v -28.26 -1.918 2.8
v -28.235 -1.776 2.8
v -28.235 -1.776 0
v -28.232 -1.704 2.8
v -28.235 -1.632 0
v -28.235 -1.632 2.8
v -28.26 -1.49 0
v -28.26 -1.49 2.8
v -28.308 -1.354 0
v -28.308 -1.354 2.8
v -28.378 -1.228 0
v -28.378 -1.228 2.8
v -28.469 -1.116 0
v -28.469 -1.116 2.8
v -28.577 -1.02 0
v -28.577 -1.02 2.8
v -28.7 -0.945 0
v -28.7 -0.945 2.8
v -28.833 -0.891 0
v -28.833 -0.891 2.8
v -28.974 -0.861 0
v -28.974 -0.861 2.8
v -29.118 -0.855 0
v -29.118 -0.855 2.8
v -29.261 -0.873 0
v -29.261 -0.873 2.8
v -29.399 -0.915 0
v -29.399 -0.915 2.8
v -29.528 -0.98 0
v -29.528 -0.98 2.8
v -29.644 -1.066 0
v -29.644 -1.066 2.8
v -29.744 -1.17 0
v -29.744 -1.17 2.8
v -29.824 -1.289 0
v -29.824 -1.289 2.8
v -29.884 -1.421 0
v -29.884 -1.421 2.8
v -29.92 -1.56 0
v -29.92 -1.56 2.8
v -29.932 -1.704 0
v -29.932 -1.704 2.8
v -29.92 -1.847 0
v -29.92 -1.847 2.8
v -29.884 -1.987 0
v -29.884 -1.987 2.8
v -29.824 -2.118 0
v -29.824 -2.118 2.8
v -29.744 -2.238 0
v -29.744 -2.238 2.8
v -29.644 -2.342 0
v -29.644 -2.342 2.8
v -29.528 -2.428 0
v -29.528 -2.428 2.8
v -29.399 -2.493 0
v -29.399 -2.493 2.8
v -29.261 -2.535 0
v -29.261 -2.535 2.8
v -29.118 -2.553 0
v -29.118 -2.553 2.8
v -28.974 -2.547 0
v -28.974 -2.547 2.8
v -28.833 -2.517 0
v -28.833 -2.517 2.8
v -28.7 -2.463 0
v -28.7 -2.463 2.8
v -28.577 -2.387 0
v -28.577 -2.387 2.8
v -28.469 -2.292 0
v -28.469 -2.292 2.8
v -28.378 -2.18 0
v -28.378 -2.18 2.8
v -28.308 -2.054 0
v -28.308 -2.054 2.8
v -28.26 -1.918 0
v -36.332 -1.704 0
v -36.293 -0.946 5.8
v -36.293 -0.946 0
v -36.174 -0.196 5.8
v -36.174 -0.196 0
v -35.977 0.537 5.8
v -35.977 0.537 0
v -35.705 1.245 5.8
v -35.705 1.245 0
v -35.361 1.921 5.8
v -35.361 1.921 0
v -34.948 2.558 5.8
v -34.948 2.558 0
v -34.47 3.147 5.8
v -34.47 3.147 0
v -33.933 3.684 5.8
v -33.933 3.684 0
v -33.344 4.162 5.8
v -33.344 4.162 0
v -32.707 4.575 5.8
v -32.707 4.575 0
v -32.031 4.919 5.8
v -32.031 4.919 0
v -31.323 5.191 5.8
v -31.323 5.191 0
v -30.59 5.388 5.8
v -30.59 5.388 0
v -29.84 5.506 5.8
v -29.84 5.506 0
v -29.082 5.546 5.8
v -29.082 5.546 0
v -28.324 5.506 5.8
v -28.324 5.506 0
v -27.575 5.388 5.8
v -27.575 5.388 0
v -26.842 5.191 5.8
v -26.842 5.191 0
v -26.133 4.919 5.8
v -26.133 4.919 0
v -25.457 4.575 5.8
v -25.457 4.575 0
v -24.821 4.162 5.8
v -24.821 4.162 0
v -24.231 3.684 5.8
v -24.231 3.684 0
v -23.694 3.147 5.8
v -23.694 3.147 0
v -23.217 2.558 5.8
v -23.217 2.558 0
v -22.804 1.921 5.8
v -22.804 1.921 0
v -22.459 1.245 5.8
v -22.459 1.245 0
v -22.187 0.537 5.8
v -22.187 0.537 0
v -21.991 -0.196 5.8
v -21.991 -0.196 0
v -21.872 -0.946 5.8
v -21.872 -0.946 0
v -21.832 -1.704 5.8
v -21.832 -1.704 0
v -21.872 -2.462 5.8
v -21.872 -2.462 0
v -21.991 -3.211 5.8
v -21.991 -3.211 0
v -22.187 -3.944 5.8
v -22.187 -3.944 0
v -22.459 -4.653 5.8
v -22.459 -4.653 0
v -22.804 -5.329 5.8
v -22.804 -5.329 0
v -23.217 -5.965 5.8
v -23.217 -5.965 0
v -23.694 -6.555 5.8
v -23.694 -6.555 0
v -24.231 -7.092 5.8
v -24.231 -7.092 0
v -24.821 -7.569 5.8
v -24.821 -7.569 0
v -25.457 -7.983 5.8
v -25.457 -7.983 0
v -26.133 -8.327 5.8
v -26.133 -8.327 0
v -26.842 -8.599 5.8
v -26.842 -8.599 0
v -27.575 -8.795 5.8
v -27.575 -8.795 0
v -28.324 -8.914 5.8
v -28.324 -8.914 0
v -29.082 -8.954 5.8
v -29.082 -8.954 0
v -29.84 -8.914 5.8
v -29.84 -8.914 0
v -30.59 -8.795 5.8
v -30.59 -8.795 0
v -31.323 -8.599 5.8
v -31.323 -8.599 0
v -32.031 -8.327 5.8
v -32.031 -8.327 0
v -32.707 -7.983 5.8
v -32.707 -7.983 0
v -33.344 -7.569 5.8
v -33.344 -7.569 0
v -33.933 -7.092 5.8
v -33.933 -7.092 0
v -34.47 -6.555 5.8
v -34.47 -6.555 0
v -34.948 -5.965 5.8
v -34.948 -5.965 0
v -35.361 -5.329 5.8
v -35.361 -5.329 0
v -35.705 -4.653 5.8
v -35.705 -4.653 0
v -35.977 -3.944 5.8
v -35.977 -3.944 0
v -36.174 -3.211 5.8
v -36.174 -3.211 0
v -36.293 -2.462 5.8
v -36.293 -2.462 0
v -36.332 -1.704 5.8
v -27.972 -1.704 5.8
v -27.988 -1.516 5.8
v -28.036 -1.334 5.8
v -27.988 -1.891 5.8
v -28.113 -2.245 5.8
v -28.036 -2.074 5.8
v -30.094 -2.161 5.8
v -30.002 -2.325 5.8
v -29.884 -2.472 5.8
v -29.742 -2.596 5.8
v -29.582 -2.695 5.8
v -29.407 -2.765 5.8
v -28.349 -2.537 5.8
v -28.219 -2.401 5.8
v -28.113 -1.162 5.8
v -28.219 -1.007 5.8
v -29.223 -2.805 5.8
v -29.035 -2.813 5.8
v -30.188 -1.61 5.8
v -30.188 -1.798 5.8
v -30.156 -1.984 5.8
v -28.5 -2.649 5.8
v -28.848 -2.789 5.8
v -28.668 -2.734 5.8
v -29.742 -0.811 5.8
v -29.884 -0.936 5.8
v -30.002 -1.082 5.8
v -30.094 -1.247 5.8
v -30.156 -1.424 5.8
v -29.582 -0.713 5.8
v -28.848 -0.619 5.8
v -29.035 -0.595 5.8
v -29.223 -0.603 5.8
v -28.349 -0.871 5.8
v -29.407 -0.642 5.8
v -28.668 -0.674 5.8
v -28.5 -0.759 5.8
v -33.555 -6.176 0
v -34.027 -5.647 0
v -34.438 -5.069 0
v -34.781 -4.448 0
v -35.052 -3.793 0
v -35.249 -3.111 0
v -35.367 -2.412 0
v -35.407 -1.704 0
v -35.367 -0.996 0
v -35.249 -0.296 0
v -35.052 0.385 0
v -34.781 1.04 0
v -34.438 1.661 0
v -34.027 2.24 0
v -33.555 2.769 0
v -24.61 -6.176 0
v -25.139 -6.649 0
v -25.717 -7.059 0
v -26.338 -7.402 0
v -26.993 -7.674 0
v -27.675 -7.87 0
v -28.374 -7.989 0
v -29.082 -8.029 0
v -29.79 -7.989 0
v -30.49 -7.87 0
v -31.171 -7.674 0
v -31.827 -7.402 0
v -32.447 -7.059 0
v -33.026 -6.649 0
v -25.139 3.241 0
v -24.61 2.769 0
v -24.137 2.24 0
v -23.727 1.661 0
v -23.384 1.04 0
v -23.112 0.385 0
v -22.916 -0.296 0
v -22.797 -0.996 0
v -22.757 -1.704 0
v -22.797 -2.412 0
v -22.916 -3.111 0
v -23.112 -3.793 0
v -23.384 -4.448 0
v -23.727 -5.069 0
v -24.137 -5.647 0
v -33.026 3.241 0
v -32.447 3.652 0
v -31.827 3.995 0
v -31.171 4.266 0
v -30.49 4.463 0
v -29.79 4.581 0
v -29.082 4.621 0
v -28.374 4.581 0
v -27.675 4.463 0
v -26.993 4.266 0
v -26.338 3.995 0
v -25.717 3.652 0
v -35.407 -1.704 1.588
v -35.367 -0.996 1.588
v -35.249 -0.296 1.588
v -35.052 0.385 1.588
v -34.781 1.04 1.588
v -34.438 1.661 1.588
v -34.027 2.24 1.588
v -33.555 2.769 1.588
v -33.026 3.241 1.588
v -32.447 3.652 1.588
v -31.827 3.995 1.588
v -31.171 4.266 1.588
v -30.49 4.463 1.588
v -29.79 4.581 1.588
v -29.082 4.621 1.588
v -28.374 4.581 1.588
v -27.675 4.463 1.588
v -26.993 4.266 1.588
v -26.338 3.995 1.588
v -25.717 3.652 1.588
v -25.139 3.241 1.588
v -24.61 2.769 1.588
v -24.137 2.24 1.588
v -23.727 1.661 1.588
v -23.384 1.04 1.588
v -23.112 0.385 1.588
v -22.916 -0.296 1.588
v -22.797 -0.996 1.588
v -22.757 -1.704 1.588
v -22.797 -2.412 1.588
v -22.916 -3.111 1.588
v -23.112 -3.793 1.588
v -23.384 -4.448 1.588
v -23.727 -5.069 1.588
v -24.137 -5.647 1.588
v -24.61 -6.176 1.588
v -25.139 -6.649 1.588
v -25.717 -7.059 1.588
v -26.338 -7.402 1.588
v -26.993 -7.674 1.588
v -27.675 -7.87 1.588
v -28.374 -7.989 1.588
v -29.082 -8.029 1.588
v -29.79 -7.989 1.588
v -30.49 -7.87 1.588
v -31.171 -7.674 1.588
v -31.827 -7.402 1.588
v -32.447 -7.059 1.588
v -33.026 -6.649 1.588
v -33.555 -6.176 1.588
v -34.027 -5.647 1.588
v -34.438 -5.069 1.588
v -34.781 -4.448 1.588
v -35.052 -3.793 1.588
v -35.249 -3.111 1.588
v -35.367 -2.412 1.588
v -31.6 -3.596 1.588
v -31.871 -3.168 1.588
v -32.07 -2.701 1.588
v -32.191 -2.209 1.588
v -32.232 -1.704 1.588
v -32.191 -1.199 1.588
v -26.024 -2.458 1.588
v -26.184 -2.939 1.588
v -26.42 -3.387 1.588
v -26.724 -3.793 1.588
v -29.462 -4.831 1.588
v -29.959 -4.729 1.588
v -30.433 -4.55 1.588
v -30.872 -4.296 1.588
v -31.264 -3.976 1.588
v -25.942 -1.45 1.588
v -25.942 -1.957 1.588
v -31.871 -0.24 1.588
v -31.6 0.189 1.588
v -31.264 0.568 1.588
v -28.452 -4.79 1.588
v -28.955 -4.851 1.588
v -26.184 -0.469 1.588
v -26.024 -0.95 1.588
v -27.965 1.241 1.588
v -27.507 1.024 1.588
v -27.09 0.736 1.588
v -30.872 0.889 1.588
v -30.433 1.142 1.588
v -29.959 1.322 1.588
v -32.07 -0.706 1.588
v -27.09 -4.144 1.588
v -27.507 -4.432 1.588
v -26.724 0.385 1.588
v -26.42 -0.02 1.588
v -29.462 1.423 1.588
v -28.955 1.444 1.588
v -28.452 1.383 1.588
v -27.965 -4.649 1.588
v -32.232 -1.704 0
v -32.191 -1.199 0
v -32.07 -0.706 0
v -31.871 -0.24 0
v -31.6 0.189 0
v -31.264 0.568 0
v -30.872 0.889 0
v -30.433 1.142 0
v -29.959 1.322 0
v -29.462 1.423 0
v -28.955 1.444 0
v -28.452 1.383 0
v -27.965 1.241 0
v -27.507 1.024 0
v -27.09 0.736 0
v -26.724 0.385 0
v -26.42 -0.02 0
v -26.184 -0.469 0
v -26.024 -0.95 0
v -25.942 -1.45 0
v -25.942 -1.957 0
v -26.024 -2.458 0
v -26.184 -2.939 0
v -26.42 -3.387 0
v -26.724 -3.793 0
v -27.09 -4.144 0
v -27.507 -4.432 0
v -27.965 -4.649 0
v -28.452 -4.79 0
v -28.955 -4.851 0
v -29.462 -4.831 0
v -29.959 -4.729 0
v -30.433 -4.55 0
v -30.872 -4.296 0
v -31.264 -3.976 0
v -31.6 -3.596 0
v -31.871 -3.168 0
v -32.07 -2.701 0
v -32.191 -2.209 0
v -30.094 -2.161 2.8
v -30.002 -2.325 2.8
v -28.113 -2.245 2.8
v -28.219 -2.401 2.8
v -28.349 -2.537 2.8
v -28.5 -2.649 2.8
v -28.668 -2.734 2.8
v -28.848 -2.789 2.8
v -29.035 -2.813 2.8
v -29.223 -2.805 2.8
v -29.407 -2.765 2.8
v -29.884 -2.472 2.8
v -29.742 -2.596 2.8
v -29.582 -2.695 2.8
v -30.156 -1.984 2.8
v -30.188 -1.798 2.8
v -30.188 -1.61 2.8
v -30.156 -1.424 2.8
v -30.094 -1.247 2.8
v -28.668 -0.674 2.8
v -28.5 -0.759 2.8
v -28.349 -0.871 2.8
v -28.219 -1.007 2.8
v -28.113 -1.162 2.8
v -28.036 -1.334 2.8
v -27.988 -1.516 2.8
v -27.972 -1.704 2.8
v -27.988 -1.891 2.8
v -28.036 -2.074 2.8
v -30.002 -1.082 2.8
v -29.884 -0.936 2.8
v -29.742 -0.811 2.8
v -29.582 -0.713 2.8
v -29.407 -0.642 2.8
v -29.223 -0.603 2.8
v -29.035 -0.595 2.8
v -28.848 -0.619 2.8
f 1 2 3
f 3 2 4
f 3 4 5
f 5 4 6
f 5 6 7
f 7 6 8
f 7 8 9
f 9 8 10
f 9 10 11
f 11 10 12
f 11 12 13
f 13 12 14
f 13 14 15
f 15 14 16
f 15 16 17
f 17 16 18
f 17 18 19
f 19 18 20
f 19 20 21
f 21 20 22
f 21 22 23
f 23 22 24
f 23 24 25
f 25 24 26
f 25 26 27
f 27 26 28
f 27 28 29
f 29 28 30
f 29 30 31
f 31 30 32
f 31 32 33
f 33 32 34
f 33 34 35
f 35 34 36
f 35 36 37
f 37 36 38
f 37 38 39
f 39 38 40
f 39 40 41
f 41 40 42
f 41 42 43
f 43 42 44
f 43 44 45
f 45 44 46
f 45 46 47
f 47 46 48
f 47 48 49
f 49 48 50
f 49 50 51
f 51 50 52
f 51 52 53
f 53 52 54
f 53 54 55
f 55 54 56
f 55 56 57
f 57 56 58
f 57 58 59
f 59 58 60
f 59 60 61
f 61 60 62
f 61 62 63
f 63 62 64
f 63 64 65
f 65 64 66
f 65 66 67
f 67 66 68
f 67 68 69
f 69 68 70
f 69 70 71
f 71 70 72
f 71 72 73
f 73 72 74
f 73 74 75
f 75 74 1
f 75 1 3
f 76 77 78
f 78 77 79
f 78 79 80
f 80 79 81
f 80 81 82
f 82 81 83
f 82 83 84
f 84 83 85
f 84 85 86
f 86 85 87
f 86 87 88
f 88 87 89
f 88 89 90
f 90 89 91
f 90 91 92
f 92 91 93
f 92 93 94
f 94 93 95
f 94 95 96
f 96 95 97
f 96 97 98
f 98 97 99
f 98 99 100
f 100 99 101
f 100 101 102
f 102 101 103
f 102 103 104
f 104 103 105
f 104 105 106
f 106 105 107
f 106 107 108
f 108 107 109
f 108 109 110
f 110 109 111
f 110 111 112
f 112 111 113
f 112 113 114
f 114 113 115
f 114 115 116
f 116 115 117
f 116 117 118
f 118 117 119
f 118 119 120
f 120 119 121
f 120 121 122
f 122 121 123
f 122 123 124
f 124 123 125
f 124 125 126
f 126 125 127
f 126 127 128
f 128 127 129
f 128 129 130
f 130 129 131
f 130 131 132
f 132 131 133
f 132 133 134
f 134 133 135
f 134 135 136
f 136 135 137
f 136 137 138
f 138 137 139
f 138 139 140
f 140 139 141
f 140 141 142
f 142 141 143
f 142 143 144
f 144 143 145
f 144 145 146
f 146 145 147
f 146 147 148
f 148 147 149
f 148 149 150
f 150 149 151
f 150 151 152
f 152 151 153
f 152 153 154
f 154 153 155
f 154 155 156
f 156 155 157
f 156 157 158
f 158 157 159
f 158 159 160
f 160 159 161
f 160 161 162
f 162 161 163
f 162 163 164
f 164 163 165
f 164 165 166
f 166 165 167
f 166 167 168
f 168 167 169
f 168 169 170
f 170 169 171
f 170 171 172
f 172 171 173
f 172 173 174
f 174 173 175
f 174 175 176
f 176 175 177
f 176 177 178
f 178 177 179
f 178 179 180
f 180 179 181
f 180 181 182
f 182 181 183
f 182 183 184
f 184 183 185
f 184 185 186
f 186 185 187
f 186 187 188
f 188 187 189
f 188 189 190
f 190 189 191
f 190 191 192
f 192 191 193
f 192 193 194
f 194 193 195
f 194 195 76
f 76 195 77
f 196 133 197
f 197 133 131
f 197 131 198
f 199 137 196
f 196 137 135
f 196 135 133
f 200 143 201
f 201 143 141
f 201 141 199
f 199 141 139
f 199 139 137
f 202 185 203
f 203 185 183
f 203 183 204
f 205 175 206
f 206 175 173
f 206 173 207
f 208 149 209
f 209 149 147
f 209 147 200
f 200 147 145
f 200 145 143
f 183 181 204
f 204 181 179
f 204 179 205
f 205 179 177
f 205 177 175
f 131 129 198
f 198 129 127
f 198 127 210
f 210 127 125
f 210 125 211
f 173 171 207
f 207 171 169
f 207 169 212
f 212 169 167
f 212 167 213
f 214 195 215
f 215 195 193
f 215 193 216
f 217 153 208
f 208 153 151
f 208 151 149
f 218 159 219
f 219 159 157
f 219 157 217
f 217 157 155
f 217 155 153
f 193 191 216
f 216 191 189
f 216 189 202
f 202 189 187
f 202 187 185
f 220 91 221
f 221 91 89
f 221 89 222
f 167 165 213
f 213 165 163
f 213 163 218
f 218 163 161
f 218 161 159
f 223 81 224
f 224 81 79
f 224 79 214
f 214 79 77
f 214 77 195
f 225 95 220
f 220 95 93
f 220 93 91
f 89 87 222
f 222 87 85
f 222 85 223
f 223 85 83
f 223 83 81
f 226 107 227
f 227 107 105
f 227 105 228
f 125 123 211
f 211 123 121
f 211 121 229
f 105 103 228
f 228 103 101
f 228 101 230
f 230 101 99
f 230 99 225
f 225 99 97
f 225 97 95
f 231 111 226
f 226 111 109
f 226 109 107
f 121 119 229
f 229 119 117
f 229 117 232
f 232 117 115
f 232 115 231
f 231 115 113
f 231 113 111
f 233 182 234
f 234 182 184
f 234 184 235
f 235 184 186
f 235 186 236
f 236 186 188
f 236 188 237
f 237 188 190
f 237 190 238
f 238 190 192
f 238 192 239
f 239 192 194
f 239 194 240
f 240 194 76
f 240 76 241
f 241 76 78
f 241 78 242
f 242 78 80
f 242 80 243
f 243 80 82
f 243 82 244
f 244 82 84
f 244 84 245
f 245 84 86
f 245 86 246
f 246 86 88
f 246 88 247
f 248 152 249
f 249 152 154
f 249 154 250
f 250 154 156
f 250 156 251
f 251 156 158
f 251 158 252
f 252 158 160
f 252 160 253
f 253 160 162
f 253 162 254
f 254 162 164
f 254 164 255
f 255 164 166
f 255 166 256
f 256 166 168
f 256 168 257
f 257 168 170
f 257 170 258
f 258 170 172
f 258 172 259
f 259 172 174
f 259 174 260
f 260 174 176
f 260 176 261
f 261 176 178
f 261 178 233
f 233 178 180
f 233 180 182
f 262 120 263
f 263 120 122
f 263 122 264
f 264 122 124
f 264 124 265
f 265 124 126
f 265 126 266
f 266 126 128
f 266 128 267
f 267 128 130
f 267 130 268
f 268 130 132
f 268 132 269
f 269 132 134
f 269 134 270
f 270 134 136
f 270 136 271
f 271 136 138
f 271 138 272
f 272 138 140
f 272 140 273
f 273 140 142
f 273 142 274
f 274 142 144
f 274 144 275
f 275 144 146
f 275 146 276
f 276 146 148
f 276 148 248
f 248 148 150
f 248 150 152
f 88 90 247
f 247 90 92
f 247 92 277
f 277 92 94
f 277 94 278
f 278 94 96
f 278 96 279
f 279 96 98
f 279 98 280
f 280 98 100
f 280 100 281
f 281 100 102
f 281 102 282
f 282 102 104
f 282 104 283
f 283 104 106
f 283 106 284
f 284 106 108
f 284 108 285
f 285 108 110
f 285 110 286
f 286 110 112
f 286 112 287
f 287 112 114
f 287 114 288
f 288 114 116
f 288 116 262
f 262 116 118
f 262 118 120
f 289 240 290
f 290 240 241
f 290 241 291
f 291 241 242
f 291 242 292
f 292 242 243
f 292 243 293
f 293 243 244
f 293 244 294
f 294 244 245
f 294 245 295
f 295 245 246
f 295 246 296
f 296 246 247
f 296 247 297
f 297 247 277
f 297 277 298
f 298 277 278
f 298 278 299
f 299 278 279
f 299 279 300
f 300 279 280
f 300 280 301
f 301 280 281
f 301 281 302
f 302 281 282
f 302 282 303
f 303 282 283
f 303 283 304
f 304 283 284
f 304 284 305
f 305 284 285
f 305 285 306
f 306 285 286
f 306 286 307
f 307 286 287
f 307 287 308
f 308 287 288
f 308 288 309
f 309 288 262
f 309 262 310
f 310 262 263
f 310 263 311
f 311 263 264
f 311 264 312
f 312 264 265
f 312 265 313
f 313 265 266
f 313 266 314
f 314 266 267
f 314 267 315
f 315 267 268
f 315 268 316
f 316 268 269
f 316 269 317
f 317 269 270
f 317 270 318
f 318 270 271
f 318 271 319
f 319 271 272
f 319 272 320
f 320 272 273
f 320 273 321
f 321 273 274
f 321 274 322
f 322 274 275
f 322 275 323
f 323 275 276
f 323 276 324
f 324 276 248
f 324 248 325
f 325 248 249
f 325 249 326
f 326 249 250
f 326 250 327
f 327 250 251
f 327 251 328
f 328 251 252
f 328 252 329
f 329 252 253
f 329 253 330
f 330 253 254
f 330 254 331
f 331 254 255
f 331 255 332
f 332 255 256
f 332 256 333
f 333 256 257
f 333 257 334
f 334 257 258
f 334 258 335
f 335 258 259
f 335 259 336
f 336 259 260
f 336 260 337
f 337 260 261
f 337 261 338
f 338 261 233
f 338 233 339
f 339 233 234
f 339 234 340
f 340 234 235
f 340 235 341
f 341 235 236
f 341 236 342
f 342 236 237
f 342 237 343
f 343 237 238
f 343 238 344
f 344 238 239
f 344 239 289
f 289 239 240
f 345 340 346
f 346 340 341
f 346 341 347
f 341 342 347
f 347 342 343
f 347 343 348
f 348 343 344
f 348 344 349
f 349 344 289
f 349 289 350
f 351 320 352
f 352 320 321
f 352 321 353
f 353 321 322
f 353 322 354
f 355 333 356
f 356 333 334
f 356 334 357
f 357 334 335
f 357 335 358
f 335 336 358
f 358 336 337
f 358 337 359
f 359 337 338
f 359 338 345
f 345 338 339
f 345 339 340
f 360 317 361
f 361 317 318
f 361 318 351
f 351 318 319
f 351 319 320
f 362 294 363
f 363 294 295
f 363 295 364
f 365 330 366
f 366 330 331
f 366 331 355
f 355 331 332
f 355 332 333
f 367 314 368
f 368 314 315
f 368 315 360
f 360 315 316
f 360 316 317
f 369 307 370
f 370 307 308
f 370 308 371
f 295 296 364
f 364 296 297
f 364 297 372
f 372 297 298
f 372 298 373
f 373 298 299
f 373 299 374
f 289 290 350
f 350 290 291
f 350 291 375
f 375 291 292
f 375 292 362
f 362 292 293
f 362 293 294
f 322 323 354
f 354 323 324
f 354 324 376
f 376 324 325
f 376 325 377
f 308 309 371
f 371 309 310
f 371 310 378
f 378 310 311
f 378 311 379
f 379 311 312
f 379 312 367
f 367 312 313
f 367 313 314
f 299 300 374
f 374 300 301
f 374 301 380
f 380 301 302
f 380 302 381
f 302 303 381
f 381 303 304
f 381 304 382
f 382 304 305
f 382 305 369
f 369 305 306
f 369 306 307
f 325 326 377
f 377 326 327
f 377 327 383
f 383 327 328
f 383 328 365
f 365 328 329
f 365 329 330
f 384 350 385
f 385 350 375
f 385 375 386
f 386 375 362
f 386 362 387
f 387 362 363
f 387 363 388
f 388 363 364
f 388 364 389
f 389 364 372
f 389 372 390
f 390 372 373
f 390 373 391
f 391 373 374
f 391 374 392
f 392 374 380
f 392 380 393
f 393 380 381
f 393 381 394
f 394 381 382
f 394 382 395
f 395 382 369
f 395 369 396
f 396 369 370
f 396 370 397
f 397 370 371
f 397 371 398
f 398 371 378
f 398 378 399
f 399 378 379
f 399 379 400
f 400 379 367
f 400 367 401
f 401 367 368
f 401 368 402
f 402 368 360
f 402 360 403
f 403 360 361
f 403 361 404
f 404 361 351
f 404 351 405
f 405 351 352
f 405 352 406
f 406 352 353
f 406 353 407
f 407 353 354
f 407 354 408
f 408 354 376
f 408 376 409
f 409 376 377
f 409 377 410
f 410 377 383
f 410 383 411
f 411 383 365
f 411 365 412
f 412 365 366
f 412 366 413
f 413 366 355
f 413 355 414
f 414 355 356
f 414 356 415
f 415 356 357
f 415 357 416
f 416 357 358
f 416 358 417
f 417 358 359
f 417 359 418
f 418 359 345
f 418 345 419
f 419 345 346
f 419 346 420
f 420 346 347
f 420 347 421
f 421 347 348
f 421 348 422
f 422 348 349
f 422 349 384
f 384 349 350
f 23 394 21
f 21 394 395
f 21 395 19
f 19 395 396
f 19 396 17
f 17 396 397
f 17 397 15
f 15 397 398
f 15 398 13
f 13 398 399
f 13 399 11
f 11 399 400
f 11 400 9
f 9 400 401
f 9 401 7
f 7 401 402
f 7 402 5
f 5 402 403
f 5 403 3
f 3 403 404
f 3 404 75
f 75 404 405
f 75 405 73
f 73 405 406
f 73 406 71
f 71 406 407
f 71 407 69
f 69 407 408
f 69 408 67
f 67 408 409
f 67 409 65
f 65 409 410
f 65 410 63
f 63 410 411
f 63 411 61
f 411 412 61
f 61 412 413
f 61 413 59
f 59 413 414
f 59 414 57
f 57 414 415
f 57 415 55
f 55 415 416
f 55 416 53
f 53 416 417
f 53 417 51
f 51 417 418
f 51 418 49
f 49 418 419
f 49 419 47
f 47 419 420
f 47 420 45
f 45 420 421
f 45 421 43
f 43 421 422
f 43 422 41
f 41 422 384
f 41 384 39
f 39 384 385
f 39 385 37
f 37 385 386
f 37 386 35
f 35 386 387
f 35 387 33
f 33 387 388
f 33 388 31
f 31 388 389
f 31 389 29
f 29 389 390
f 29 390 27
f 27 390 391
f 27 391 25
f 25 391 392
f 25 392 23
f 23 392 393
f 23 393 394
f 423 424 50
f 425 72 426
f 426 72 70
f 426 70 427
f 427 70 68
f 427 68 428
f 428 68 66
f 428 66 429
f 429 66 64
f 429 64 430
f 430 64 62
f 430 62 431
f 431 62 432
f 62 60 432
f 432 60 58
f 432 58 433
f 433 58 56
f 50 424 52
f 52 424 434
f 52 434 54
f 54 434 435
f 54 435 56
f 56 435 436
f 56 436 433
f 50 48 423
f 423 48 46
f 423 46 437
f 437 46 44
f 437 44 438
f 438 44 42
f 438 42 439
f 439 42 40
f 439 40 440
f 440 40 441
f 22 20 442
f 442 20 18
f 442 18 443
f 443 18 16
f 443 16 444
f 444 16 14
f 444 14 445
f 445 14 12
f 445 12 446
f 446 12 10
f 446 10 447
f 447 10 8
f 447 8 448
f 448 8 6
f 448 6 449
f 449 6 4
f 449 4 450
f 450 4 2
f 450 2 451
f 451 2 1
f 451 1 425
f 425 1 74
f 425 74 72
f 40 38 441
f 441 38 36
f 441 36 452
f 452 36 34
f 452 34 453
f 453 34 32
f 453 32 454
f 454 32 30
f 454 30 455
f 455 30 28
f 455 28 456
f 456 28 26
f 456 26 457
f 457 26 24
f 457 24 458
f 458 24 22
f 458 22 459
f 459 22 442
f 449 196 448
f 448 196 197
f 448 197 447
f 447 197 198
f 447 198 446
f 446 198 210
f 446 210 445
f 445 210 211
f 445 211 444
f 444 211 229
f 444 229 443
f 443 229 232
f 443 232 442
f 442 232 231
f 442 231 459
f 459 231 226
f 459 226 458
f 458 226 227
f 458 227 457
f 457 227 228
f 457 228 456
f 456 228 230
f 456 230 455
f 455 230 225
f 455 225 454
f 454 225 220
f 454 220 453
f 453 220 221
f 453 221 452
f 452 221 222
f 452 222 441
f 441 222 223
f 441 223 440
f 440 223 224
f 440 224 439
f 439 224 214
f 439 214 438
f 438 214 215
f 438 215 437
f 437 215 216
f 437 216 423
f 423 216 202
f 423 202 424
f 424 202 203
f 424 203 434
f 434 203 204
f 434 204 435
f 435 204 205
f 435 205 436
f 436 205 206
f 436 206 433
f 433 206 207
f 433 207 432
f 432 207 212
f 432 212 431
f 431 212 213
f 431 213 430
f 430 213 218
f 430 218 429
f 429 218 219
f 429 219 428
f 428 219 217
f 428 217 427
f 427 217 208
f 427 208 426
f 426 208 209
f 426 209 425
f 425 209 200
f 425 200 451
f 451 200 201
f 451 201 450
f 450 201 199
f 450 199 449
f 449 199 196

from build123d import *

# Parameters (mm, degrees)
SKETCH1_R           = 7.25
BOSS_EXTRUDE1_DEPTH = 5.8
SKETCH2_R           = 6.325
CUT_EXTRUDE1_DEPTH  = 1.5875
SKETCH3_R           = 1
BOSS_EXTRUDE2_DEPTH = 1.5875
SKETCH4_R           = 3.15
BOSS_EXTRUDE3_DEPTH = 3
SKETCH5_R           = 0.85
CUT_EXTRUDE2_DEPTH  = 38.866125059
SKETCH6_R           = 1.11
CUT_EXTRUDE3_DEPTH  = 3


with BuildPart() as part:
    # Sketch1 → Boss-Extrude1 (new body)
    with BuildSketch(Plane.XY):
        with Locations((-29.082250471, -1.703826149)):
            Circle(SKETCH1_R)
    extrude(amount=BOSS_EXTRUDE1_DEPTH)

    # Sketch2 → Cut-Extrude1 (cut)
    with BuildSketch(Plane(origin=(0, 0, 0), x_dir=(-1, 0, 0), z_dir=(0, 0, -1))):
        with Locations((29.082250471, -1.703826149)):
            Circle(SKETCH2_R)
    extrude(amount=-CUT_EXTRUDE1_DEPTH, mode=Mode.SUBTRACT)

    # Sketch3 → Boss-Extrude2 (add)
    with BuildSketch(Plane(origin=(0, 0, 1.5875), x_dir=(-1, 0, 0), z_dir=(0, 0, -1))):
        with Locations((29.082250471, -1.703826149)):
            Circle(SKETCH3_R)
    extrude(amount=BOSS_EXTRUDE2_DEPTH)

    # Sketch4 → Boss-Extrude3 (add)
    with BuildSketch(Plane(origin=(0, 0, 0), x_dir=(-1, 0, 0), z_dir=(0, 0, -1))):
        with Locations((29.082250471, -1.703826149)):
            Circle(SKETCH4_R)
    extrude(amount=-BOSS_EXTRUDE3_DEPTH)

    # Sketch5 → Cut-Extrude2 (cut, through all)
    with BuildSketch(Plane(origin=(0, 0, 0), x_dir=(-1, 0, 0), z_dir=(0, 0, -1))):
        with Locations((29.082250471, -1.703826149)):
            Circle(SKETCH5_R)
    extrude(amount=-CUT_EXTRUDE2_DEPTH, mode=Mode.SUBTRACT)

    # Sketch6 → Cut-Extrude3 (cut)
    with BuildSketch(Plane.XY.offset(5.8)):
        with Locations((-29.082250471, -1.703826149)):
            Circle(SKETCH6_R)
    extrude(amount=-CUT_EXTRUDE3_DEPTH, mode=Mode.SUBTRACT)


solid = part.part
